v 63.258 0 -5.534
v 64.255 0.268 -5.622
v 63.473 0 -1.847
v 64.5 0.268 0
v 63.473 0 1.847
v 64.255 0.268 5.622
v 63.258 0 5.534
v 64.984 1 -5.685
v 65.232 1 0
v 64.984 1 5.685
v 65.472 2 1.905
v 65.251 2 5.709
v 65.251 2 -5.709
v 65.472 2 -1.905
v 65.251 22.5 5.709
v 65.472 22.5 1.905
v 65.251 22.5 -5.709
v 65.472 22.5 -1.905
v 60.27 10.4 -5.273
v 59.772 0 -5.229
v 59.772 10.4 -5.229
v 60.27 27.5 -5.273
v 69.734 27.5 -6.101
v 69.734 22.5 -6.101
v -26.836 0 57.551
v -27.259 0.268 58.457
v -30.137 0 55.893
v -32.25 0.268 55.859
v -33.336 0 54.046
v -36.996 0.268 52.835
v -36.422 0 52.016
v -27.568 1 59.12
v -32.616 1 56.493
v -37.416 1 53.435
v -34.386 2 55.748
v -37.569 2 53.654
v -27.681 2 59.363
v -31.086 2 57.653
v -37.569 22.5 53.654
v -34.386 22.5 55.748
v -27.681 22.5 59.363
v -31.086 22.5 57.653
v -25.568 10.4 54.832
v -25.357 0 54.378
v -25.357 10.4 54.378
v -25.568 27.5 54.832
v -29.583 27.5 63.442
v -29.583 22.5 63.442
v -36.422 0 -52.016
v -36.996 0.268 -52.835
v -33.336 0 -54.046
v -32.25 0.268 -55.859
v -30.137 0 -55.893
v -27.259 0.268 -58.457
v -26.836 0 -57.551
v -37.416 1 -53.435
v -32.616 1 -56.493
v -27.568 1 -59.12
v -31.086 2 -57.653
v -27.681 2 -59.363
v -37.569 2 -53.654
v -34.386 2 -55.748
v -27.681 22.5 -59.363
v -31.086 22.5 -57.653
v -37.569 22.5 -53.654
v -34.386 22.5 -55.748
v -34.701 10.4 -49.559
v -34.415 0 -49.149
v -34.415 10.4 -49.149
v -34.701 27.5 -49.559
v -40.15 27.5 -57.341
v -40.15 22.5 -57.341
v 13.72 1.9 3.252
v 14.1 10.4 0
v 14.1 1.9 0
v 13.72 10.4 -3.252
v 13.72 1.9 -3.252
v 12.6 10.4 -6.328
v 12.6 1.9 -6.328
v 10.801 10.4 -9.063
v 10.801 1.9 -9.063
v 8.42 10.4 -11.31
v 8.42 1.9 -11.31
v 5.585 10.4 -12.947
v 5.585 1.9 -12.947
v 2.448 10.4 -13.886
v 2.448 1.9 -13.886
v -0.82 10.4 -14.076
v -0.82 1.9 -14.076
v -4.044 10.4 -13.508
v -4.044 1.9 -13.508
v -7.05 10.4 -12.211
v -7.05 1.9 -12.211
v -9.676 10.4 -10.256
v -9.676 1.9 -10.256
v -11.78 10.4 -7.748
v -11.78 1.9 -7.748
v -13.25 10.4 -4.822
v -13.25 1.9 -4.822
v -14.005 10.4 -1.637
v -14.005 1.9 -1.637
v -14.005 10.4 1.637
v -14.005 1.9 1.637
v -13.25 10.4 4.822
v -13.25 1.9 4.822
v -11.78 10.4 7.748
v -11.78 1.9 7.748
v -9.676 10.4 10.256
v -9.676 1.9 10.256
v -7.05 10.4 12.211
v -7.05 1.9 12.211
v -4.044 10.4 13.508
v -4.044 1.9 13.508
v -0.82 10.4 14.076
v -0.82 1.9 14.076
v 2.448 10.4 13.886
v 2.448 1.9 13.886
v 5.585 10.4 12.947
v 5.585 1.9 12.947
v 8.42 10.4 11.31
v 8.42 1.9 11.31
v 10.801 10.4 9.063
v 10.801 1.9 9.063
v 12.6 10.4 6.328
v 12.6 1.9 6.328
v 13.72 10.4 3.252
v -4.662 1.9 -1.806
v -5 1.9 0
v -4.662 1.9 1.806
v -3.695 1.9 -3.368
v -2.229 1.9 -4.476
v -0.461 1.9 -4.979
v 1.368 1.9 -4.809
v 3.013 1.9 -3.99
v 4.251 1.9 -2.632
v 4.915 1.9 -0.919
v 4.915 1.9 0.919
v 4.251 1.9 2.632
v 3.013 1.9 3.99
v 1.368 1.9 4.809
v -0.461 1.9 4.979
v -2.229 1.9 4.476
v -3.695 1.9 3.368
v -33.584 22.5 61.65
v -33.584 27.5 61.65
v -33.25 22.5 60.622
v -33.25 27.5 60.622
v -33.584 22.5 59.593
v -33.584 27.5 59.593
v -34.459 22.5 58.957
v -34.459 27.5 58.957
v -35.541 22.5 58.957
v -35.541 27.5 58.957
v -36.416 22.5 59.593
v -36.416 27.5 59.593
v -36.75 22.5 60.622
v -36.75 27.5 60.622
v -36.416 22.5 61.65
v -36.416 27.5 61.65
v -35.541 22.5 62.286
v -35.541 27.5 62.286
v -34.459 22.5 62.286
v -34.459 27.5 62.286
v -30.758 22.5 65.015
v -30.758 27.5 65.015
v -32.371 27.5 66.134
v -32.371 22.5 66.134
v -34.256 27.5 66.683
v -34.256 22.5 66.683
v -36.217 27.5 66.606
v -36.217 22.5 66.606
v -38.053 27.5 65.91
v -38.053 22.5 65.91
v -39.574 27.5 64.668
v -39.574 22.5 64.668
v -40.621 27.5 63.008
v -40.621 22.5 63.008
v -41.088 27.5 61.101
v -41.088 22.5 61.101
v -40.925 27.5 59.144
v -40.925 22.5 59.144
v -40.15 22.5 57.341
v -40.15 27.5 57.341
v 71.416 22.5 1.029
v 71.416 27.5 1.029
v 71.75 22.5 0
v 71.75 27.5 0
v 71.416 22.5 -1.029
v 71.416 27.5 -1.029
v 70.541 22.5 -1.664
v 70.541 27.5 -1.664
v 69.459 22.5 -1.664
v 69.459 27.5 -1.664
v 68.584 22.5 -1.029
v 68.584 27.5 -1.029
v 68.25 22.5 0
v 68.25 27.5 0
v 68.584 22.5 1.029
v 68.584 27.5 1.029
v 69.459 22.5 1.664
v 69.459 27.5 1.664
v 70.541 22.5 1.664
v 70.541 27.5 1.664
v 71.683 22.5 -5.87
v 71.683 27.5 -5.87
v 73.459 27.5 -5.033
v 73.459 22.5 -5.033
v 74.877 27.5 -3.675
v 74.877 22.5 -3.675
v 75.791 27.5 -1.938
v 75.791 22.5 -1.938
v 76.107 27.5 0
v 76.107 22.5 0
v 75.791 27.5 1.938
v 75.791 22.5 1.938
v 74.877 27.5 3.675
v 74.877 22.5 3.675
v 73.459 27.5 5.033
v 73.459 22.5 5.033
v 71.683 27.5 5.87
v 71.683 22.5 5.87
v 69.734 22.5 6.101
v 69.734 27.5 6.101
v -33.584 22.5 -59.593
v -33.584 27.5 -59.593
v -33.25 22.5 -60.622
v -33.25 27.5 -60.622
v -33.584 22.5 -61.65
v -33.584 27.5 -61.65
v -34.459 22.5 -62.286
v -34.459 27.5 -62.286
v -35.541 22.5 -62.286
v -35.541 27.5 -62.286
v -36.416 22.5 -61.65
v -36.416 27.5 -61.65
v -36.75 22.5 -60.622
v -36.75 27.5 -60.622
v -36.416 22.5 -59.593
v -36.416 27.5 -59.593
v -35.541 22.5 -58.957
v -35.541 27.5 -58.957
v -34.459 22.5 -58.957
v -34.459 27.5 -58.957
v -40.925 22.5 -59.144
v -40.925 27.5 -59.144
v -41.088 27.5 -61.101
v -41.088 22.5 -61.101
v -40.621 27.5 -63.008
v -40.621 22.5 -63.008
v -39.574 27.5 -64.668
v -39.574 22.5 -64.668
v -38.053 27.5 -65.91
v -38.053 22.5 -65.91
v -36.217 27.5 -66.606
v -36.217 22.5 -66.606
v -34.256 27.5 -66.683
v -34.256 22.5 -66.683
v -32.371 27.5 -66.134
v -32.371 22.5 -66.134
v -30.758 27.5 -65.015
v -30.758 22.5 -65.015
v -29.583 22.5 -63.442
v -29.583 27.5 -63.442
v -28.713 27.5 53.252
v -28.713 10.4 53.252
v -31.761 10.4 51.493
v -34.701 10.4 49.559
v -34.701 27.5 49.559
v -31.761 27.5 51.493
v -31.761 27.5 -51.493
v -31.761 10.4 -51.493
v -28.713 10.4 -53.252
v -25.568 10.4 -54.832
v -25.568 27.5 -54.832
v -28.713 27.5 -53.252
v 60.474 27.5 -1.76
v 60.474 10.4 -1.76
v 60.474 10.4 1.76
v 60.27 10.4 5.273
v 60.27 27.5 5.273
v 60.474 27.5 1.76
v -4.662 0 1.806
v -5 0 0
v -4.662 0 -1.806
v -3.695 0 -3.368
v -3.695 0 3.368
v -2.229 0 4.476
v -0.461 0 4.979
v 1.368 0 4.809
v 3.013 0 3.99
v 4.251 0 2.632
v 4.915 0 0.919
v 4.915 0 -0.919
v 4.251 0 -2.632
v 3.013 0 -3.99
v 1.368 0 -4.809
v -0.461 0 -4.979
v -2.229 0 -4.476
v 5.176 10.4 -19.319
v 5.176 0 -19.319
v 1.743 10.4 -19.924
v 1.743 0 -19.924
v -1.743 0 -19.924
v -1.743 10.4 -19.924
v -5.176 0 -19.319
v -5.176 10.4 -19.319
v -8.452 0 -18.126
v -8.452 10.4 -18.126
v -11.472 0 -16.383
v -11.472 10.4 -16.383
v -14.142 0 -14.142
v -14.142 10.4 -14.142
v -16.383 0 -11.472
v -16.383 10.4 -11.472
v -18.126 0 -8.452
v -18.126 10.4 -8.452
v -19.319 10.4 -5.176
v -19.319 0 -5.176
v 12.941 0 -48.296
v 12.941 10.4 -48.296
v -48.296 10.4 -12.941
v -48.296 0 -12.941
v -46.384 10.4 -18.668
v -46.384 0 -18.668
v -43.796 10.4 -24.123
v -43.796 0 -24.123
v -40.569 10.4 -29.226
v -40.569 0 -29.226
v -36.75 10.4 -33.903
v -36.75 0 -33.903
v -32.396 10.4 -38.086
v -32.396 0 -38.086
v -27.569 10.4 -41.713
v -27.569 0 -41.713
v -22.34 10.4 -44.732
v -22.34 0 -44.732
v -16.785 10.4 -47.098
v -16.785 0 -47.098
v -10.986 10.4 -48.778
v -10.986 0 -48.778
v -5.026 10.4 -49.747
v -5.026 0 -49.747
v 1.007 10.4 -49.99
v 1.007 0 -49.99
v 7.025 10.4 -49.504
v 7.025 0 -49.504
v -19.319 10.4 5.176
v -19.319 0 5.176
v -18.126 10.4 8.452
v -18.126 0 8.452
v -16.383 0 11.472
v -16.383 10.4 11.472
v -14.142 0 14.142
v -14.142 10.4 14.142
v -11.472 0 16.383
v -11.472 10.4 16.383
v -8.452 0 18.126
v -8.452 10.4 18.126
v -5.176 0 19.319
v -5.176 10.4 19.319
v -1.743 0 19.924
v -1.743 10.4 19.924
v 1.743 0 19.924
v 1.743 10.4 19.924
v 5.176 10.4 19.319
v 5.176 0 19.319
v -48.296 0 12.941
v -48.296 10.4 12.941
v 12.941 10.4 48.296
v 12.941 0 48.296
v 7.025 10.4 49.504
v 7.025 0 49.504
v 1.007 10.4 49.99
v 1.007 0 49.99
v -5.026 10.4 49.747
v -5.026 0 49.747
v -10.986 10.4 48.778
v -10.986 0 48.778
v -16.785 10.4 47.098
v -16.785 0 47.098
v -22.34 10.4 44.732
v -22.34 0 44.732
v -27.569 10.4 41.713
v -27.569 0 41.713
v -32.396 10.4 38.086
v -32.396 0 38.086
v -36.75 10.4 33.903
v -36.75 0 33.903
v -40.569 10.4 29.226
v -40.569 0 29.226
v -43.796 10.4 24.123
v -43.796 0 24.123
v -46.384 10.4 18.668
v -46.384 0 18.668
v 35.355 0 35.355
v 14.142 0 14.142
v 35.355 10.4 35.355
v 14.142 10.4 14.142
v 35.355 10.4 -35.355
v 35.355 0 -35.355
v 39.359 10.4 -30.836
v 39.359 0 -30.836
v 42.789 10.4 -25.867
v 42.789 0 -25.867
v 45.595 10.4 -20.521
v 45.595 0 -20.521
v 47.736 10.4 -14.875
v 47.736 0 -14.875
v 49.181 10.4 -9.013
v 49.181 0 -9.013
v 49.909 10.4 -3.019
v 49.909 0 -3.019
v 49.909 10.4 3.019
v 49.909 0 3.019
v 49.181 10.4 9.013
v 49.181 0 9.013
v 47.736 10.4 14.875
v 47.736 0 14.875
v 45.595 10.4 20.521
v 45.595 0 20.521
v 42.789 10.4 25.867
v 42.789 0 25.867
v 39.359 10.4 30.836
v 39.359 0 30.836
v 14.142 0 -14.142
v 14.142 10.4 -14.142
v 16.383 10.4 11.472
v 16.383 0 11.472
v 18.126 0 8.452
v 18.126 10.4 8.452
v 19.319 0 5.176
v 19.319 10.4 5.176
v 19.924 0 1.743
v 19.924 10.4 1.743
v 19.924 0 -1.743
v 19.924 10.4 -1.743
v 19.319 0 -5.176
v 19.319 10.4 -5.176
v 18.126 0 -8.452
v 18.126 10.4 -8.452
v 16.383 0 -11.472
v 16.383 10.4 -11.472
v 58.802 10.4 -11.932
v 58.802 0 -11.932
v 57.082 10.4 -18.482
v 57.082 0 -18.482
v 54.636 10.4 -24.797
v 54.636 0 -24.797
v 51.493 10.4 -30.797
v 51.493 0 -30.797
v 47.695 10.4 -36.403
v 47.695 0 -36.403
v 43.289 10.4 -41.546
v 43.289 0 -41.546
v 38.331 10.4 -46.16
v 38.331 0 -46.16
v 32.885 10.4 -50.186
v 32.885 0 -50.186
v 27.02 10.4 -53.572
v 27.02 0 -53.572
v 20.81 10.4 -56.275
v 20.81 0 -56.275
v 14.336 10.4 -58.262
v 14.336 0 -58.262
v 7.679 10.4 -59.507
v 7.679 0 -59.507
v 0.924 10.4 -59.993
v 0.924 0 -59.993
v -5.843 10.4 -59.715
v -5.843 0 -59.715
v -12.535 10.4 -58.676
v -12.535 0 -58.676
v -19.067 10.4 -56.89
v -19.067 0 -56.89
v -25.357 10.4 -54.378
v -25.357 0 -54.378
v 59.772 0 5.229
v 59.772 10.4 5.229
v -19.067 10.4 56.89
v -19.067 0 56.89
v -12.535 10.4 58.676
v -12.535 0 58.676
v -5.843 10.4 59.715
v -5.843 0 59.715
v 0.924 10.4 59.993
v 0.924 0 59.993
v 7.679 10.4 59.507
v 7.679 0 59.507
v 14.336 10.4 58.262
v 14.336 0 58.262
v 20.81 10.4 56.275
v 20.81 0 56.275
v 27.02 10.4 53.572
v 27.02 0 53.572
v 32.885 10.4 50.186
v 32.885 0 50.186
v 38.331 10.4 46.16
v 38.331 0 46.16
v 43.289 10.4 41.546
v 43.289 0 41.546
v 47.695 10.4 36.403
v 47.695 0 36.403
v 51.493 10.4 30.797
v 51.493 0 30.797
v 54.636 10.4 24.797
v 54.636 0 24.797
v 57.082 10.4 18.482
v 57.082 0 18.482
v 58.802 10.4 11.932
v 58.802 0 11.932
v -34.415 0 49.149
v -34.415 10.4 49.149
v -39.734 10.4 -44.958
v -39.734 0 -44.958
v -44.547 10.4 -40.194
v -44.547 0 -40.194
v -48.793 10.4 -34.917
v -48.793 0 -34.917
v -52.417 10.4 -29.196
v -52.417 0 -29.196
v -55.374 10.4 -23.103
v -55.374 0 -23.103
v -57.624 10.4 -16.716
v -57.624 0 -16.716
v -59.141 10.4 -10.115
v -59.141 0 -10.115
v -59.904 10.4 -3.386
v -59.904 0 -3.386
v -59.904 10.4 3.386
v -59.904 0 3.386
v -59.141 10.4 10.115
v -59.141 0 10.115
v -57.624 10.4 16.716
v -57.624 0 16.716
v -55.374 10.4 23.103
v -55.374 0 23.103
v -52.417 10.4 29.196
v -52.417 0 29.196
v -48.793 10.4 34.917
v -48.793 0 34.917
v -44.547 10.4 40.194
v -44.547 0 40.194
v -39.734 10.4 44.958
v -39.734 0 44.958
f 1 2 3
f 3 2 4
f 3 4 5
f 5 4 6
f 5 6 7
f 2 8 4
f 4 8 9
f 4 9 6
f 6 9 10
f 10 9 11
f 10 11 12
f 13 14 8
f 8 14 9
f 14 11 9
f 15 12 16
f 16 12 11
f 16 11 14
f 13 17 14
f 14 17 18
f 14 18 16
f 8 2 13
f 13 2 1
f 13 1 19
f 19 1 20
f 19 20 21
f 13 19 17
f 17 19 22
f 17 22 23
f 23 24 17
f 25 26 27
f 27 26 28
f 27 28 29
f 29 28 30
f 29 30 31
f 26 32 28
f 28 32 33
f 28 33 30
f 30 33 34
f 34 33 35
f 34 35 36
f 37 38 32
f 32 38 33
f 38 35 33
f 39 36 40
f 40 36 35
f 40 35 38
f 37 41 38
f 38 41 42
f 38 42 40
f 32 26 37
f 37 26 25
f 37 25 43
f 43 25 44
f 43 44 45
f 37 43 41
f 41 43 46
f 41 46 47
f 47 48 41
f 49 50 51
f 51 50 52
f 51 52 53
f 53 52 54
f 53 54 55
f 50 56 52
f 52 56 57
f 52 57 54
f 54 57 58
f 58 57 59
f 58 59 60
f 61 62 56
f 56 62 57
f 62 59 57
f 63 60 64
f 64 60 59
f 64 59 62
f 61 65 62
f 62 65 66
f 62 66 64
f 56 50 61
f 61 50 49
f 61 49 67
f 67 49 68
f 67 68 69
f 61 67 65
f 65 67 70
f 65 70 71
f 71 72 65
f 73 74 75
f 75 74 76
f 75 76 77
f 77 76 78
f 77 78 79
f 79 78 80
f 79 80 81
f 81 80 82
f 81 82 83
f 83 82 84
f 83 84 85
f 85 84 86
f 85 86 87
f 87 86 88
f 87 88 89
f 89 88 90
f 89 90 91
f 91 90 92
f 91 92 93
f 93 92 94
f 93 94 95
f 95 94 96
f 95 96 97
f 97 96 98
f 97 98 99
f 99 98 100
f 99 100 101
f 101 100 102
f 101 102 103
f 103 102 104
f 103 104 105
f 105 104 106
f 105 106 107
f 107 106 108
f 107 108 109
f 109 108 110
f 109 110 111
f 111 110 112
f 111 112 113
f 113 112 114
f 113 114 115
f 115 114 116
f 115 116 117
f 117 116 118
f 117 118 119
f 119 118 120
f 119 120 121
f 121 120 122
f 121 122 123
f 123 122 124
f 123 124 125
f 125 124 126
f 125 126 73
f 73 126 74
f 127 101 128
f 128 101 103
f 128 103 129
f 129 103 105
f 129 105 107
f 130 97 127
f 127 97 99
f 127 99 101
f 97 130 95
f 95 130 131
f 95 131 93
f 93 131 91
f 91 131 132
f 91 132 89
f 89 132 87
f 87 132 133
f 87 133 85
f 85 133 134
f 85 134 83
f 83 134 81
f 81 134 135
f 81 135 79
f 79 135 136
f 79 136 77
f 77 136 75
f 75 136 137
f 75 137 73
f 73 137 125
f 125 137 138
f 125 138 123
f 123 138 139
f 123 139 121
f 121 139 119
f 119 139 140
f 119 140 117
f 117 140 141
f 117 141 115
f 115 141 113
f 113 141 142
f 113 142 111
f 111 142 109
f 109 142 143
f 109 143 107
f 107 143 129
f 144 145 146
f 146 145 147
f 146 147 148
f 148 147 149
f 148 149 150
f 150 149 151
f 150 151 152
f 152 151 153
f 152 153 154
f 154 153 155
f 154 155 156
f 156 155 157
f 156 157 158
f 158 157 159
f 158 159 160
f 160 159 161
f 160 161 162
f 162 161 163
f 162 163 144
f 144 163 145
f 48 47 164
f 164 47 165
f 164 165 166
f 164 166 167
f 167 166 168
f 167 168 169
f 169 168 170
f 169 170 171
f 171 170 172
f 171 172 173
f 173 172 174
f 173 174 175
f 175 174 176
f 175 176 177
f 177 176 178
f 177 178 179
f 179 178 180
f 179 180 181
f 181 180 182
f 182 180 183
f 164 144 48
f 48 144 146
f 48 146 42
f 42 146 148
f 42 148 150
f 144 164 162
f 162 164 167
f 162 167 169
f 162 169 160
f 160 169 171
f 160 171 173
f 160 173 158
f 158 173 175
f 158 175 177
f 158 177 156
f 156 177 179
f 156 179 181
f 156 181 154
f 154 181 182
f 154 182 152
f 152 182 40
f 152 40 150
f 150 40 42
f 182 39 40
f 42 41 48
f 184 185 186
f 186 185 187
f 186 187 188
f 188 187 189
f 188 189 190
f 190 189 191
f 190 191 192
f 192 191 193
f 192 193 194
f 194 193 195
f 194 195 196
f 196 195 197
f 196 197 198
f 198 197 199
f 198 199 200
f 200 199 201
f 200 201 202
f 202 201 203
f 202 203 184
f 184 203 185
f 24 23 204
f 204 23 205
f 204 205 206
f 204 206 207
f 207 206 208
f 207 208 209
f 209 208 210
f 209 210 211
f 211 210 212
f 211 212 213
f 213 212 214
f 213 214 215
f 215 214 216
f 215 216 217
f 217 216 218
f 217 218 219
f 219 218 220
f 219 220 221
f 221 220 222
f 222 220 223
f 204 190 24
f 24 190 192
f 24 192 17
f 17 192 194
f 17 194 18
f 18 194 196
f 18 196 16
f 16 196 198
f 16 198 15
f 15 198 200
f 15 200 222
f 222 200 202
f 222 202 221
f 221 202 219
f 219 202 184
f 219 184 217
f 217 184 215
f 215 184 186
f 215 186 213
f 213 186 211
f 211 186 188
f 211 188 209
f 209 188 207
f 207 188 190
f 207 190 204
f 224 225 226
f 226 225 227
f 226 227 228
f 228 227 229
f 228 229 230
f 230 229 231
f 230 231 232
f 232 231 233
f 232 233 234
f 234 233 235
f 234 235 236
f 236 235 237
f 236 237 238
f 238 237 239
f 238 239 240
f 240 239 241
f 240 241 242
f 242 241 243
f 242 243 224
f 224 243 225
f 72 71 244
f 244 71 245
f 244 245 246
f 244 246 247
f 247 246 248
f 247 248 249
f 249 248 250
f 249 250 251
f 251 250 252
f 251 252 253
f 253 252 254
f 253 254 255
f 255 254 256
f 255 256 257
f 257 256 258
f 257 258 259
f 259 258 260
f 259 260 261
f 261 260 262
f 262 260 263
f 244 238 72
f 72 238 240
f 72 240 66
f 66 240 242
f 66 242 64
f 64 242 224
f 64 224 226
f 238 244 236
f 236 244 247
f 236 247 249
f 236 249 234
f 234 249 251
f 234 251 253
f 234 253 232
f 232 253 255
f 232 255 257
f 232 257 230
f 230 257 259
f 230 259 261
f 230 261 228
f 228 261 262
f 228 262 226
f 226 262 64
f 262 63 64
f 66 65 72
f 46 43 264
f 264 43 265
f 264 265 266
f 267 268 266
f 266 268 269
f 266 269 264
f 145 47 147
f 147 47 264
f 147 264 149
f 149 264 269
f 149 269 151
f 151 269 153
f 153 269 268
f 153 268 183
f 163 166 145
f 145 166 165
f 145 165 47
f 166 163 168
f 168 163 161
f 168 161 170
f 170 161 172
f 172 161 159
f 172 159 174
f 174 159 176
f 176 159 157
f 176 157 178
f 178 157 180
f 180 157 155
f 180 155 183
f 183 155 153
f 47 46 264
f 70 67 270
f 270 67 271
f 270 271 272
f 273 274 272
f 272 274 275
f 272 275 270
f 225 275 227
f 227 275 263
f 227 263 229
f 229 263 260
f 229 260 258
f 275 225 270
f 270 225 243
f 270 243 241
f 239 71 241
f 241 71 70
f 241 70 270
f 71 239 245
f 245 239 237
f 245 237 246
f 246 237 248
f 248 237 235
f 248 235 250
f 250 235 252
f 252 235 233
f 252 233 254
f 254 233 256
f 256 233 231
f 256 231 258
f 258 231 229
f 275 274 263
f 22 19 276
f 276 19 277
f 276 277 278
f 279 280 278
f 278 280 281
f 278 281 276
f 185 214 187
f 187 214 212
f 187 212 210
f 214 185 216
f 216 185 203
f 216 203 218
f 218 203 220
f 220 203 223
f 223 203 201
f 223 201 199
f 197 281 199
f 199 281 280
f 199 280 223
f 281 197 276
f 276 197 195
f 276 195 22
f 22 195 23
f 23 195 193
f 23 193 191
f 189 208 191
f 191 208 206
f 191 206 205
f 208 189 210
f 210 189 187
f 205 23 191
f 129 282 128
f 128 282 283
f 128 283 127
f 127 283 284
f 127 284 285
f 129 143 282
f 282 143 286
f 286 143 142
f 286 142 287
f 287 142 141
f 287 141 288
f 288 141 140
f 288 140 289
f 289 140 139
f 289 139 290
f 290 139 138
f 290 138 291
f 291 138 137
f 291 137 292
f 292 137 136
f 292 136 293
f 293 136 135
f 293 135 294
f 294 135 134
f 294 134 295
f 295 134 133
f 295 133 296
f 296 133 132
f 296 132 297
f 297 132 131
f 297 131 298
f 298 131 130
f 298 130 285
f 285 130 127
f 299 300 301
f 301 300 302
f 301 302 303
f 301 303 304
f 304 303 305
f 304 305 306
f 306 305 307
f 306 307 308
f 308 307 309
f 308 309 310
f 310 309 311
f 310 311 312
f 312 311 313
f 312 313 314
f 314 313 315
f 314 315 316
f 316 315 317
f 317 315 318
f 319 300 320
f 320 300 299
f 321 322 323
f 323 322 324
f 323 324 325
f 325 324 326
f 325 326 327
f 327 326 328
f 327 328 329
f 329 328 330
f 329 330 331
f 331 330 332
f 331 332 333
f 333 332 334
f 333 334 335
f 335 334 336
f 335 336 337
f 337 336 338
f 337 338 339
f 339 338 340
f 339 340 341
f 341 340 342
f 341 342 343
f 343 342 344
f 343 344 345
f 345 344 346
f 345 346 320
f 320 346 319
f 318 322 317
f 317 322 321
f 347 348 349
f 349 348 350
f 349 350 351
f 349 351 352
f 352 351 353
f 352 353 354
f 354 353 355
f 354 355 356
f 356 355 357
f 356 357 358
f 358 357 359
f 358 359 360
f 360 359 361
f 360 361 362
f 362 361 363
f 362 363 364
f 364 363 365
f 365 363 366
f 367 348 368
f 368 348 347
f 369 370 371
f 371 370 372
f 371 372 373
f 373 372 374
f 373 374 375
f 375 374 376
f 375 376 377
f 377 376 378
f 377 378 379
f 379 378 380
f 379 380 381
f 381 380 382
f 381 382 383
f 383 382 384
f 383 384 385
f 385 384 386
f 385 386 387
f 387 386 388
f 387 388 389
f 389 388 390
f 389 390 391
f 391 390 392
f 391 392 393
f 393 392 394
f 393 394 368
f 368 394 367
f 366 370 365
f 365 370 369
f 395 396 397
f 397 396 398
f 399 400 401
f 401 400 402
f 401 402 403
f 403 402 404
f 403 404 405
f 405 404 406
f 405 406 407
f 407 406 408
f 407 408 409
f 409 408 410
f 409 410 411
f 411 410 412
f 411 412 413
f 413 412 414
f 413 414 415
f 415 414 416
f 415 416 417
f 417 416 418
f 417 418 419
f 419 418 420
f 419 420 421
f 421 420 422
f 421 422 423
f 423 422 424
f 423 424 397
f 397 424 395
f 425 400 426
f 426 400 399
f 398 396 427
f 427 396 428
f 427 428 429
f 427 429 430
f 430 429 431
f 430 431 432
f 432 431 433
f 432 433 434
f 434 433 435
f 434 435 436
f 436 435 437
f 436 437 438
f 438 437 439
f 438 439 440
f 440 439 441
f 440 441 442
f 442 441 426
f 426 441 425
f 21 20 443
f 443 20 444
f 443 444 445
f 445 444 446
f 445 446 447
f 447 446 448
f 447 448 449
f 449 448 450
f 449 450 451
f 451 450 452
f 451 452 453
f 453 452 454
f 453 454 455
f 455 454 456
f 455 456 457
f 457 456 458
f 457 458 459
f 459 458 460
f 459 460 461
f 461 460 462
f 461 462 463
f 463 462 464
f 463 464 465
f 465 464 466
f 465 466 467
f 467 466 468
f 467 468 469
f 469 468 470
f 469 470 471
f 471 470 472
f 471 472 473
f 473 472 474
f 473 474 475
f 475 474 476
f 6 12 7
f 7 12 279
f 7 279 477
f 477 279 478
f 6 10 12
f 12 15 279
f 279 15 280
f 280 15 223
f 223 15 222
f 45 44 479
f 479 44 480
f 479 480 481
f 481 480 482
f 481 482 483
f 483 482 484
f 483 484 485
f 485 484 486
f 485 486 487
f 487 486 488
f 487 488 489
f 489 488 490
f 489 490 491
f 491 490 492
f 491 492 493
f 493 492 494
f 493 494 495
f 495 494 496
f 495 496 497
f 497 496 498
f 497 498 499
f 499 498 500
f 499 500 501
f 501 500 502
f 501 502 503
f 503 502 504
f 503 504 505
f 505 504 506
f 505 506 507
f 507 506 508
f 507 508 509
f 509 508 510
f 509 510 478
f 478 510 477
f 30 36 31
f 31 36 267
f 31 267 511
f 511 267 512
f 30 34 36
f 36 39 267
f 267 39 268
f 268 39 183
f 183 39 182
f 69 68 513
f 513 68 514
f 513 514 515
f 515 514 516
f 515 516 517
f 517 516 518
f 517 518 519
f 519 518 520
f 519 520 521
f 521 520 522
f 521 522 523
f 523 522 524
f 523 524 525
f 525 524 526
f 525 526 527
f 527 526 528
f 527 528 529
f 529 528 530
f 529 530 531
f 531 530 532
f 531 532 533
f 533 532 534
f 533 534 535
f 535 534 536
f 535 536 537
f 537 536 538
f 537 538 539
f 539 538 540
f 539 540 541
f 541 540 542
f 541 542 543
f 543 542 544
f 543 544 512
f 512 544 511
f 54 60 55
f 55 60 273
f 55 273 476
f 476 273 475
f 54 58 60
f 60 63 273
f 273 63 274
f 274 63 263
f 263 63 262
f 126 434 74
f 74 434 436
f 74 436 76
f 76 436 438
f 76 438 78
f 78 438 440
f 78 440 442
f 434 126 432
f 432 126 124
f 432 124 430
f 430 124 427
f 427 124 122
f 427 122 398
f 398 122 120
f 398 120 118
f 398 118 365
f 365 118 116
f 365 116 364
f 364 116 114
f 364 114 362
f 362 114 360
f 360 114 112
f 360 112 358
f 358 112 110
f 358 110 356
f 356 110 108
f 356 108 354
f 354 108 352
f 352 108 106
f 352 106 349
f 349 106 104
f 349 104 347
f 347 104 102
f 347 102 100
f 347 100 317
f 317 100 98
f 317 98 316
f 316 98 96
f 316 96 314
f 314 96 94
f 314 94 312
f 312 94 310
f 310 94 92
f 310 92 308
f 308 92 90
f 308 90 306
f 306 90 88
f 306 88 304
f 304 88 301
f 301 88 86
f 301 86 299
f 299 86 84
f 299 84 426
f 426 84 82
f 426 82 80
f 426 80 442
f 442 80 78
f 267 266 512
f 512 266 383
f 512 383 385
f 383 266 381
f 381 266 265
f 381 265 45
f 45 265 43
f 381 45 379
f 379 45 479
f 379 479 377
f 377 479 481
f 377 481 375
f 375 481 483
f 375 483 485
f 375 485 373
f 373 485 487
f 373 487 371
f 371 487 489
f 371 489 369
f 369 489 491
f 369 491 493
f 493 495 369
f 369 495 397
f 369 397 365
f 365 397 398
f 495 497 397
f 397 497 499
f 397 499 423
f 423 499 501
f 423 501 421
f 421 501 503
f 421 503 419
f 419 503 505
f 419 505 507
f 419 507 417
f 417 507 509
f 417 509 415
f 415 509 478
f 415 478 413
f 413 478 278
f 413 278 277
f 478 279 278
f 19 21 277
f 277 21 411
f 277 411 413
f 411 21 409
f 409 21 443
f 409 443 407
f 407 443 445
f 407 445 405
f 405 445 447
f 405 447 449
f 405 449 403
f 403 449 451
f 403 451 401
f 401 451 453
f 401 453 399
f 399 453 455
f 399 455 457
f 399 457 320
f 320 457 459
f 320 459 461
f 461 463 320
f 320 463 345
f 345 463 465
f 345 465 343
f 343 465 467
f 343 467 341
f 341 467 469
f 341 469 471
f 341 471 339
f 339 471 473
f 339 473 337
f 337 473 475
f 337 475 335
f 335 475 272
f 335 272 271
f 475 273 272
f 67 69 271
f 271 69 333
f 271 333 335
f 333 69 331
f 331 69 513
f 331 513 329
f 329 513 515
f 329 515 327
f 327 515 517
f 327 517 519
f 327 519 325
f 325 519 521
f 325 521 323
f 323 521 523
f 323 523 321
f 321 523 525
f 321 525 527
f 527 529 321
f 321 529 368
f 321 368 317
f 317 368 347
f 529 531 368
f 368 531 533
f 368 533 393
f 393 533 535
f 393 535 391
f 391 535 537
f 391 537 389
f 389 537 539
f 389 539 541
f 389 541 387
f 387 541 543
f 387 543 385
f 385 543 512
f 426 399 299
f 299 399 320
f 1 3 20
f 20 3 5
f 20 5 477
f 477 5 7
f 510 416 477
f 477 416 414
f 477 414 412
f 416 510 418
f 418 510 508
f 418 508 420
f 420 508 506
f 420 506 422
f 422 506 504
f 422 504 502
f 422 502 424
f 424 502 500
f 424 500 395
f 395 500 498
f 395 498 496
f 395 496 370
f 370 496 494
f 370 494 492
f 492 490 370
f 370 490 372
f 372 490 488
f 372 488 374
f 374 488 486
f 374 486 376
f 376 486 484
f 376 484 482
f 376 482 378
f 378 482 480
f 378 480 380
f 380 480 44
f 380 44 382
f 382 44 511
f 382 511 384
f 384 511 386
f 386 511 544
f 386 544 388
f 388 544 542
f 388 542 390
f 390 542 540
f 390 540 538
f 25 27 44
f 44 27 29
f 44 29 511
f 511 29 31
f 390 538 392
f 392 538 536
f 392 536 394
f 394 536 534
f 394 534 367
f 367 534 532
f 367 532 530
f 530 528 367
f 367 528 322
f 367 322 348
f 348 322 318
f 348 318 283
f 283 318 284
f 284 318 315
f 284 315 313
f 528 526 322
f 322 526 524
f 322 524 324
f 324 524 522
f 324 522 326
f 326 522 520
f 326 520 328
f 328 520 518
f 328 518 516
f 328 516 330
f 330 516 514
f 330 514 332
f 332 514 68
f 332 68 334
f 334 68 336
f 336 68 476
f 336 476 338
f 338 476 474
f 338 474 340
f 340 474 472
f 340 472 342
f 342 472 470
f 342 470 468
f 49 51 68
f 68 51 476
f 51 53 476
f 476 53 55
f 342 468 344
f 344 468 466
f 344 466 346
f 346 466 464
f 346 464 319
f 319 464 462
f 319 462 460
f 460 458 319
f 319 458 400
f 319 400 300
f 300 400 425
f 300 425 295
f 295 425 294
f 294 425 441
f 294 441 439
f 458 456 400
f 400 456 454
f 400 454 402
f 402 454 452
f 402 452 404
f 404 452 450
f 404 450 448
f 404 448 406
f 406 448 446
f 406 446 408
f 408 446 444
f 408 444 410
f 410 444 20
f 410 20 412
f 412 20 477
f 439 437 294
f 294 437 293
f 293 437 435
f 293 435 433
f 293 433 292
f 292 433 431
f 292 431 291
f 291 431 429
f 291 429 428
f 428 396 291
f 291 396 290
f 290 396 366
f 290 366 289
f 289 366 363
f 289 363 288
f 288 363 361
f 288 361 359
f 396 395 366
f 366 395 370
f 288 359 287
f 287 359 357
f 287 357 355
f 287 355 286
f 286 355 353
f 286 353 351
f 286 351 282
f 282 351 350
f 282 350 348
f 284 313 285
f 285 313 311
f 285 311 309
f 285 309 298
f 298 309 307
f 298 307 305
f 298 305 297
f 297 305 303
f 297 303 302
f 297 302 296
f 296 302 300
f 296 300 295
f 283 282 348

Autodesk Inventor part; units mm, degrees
ref_plane "YZ Plane" through (0, 0, 0) normal (1, 0, 0) x (0, 1, 0)
ref_plane "XZ Plane" through (0, 0, 0) normal (0, 1, 0) x (-1, 0, 0)
ref_plane "XY Plane" through (0, 0, 0) normal (0, 0, 1) x (1, 0, 0)
sketch "Sketch1" plane through (0, 0, 0) normal (0, 1, 0) x (-1, 0, 0)
  line L0 (0, 0) -> (48.2963, -12.941)
  line L1 (0, 0) -> (50, 0) construction
  line L2 (0, 0) -> (48.2963, 12.941)
  line L3 (0, 0) -> (50, 0) construction
  arc A0 (48.2963, -12.941) -> (48.2963, 12.941) centre (0, 0) ccw
  arc A1 (-12.941, 48.2963) -> (-35.3553, 35.3553) centre (0, 0) ccw
  line L4 (0, 0) -> (-12.941, 48.2963)
  line L5 (0, 0) -> (-35.3553, 35.3553)
  arc A2 (-35.3553, -35.3553) -> (-12.941, -48.2963) centre (0, 0) ccw
  line L6 (0, 0) -> (-35.3553, -35.3553)
  line L7 (0, 0) -> (-12.941, -48.2963)
  circle A3 centre (0, 0) radius 5
  circle A4 centre (0, 0) radius 20
  line L8 (0, 0) -> (34.7014, -49.5587)
  line L9 (0, 0) -> (60.5, 0) construction
  line L10 (0, 0) -> (25.5684, -54.8316)
  line L11 (0, 0) -> (60.5, 0) construction
  line L12 (25.5684, -54.8316) -> (27.6815, -59.3632)
  line L13 (34.7014, -49.5587) -> (37.5693, -53.6545)
  arc A5 (27.6815, -59.3632) -> (37.5693, -53.6545) centre (0, 0) ccw
  circle A6 centre (0, 0) radius 50
  circle A7 centre (0, 0) radius 60
  line L14 (0, 0) -> (25.5684, 54.8316)
  line L15 (25.5684, 54.8316) -> (27.6815, 59.3632)
  arc A8 (37.5693, 53.6545) -> (27.6815, 59.3632) centre (0, 0) ccw
  line L16 (0, 0) -> (34.7014, 49.5587)
  line L17 (34.7014, 49.5587) -> (37.5693, 53.6545)
  line L18 (0, 0) -> (-60.2698, -5.2729)
  line L19 (-60.2698, -5.2729) -> (-65.2508, -5.7087)
  arc A9 (-65.2508, 5.7087) -> (-65.2508, -5.7087) centre (0, 0) ccw
  line L20 (0, 0) -> (-60.2698, 5.2729)
  line L21 (-60.2698, 5.2729) -> (-65.2508, 5.7087)
  point P0 (19.3185, -5.1764)
  point P1 (19.3185, 5.1764)
  point P2 (-5.1764, 19.3185)
  point P3 (-14.1421, 14.1421)
  point P4 (-14.1421, -14.1421)
  point P5 (-5.1764, -19.3185)
  point P6 (8.4524, -18.1262)
  point P7 (11.4715, -16.383)
  point P8 (-35.3553, -35.3553)
  point P9 (-35.3553, 35.3553)
  point P10 (-12.941, 48.2963)
  point P11 (-12.941, -48.2963)
  point P12 (25.3571, -54.3785)
  point P13 (34.4146, -49.1491)
  point P14 (34.4146, 49.1491)
  point P15 (25.3571, 54.3785)
  point P16 (-59.7717, 5.2293)
  point P17 (-59.7717, -5.2293)
  dimension "d0" = 50
  dimension "d1" = 15
  dimension "d2" = 50
  dimension "d3" = 15
  dimension "d4" = 50
  dimension "d7" = 360
  dimension "d9" = 10
  dimension "d10" = 40
  dimension "d11" = 60.5
  dimension "d12" = 55
  dimension "d13" = 60.5
  dimension "d14" = 65
  dimension "d16" = 5
  dimension "d17" = 5
  dimension "d18" = 65.5
  dimension "d25" = 100
  dimension "d26" = 120
  dimension "d29" = 360
extrude "Extrusion2" add sketch "Sketch1" along normal blind 10.4 contours A3 L2 A4 L0 | L0 A4 L8 A3 | A3 L16 A4 L2 | A3 L5 A4 L4 | L4 A4 L14 A3 | A3 L20 A4 L5 | A3 L7 A4 L6 | L6 A4 L18 A3 | A3 L10 A4 L7 | L8 A4 L10 A3 | L14 A4 L16 A3 | L18 A4 L20 A3 | A4 L2 A0 L0 | A4 L5 A1 L4 | A4 L7 A2 L6 | A0 A6 L16 A7 L8 | A1 A6 L20 A7 L14 | A2 A6 L10 A7 L18 | L8 A7 L10 A6 | L14 A7 L16 A6 | L18 A7 L20 A6 | L8 L13 A5 L12 L10 A7 | L14 L15 A8 L17 L16 A7 | L18 L19 A9 L21 L20 A7
sketch "Sketch3" plane through (0, 10.4, 0) normal (0, 1, 0) x (1, 0, 0)
  circle A0 centre (0, 0) radius 5 projected
  arc A1 (65.2508, -5.7087) -> (65.2508, 5.7087) centre (0, 0) ccw projected
  arc A2 (65.2508, -5.7087) -> (65.2508, 5.7087) centre (0, 0) ccw
  line L0 (65.2508, 5.7087) -> (60.2698, 5.2729)
  line L1 (65.2508, 5.7087) -> (59.7717, 5.2293) projected
  line L2 (65.2508, -5.7087) -> (60.2698, -5.2729)
  line L3 (59.7717, -5.2293) -> (65.2508, -5.7087) projected
  arc A3 (60.2698, -5.2729) -> (60.2698, 5.2729) centre (0, 0) ccw
  arc A4 (-27.6815, 59.3632) -> (-37.5693, 53.6545) centre (0, 0) ccw
  line L4 (-37.5693, 53.6545) -> (-34.7014, 49.5587)
  arc A5 (-25.5684, 54.8316) -> (-34.7014, 49.5587) centre (0, 0) ccw
  line L5 (-27.6815, 59.3632) -> (-25.5684, 54.8316)
  arc A6 (-37.5693, -53.6545) -> (-27.6815, -59.3632) centre (0, 0) ccw
  line L6 (-27.6815, -59.3632) -> (-25.5684, -54.8316)
  arc A7 (-34.7014, -49.5587) -> (-25.5684, -54.8316) centre (0, 0) ccw
  line L7 (-37.5693, -53.6545) -> (-34.7014, -49.5587)
  dimension "d40" = 5
  dimension "d41" = 5
  dimension "d42" = 60.5
  dimension "d45" = 360
extrude "Extrusion3" add sketch "Sketch3" along normal blind 17.1 contours L2 A3 L0 A1 | L5 A5 L4 A4 | L7 A7 L6 A6
sketch "Sketch4" plane through (0, 27.5, 0) normal (0, 1, 0) x (1, 0, 0)
  arc A0 (-27.6815, 59.3632) -> (-37.5693, 53.6545) centre (0, 0) ccw projected
  arc A1 (-27.6815, 59.3632) -> (-37.5693, 53.6545) centre (0, 0) ccw
  line L0 (-27.6815, 59.3632) -> (-29.5833, 63.4415)
  line L1 (-27.6815, 59.3632) -> (-23.1815, 59.3632) construction
  line L2 (-37.5693, 53.6545) -> (-40.1504, 57.3406)
  line L3 (-37.5693, 53.6545) -> (-33.0693, 53.6545) construction
  circle A2 centre (-35, 60.6218) radius 1.75
  arc A3 (-29.5833, 63.4415) -> (-40.1504, 57.3406) centre (-35, 60.6218) ccw
  arc A4 (-40.1504, -57.3406) -> (-29.5833, -63.4415) centre (-35, -60.6218) ccw
  circle A5 centre (-35, -60.6218) radius 1.75
  line L4 (-37.5693, -53.6545) -> (-40.1504, -57.3406)
  line L5 (-27.6815, -59.3632) -> (-29.5833, -63.4415)
  arc A6 (-37.5693, -53.6545) -> (-27.6815, -59.3632) centre (0, 0) ccw
  arc A7 (69.7336, -6.1009) -> (69.7336, 6.1009) centre (70, 0) ccw
  circle A8 centre (70, 0) radius 1.75
  line L6 (65.2508, -5.7087) -> (69.7336, -6.1009)
  line L7 (65.2508, 5.7087) -> (69.7336, 6.1009)
  arc A9 (65.2508, -5.7087) -> (65.2508, 5.7087) centre (0, 0) ccw
  point P0 (0, 0)
  dimension "d50" = 4.5
  dimension "d51" = 115
  dimension "d52" = 4.5
  dimension "d53" = 125
  dimension "d63" = 3.5
  dimension "d66" = 360
  dimension "d70" = 70
extrude "Extrusion5" add sketch "Sketch4" against normal blind 5
sketch "Sketch5" plane through (0, 10.4, 0) normal (0, 1, 0) x (1, 0, 0)
  circle A0 centre (0, 0) radius 14.1
  dimension "d71" = 28.2
extrude "Extrusion6" cut sketch "Sketch5" against normal blind 8.5
fillet "Fillet1" radius 2 3 edges at (-32.75, 0, -56.7247) (-32.75, 0, 56.7247) (65.5, 0, 0)
properties part number "MechSwitch_DielecTopV2"
